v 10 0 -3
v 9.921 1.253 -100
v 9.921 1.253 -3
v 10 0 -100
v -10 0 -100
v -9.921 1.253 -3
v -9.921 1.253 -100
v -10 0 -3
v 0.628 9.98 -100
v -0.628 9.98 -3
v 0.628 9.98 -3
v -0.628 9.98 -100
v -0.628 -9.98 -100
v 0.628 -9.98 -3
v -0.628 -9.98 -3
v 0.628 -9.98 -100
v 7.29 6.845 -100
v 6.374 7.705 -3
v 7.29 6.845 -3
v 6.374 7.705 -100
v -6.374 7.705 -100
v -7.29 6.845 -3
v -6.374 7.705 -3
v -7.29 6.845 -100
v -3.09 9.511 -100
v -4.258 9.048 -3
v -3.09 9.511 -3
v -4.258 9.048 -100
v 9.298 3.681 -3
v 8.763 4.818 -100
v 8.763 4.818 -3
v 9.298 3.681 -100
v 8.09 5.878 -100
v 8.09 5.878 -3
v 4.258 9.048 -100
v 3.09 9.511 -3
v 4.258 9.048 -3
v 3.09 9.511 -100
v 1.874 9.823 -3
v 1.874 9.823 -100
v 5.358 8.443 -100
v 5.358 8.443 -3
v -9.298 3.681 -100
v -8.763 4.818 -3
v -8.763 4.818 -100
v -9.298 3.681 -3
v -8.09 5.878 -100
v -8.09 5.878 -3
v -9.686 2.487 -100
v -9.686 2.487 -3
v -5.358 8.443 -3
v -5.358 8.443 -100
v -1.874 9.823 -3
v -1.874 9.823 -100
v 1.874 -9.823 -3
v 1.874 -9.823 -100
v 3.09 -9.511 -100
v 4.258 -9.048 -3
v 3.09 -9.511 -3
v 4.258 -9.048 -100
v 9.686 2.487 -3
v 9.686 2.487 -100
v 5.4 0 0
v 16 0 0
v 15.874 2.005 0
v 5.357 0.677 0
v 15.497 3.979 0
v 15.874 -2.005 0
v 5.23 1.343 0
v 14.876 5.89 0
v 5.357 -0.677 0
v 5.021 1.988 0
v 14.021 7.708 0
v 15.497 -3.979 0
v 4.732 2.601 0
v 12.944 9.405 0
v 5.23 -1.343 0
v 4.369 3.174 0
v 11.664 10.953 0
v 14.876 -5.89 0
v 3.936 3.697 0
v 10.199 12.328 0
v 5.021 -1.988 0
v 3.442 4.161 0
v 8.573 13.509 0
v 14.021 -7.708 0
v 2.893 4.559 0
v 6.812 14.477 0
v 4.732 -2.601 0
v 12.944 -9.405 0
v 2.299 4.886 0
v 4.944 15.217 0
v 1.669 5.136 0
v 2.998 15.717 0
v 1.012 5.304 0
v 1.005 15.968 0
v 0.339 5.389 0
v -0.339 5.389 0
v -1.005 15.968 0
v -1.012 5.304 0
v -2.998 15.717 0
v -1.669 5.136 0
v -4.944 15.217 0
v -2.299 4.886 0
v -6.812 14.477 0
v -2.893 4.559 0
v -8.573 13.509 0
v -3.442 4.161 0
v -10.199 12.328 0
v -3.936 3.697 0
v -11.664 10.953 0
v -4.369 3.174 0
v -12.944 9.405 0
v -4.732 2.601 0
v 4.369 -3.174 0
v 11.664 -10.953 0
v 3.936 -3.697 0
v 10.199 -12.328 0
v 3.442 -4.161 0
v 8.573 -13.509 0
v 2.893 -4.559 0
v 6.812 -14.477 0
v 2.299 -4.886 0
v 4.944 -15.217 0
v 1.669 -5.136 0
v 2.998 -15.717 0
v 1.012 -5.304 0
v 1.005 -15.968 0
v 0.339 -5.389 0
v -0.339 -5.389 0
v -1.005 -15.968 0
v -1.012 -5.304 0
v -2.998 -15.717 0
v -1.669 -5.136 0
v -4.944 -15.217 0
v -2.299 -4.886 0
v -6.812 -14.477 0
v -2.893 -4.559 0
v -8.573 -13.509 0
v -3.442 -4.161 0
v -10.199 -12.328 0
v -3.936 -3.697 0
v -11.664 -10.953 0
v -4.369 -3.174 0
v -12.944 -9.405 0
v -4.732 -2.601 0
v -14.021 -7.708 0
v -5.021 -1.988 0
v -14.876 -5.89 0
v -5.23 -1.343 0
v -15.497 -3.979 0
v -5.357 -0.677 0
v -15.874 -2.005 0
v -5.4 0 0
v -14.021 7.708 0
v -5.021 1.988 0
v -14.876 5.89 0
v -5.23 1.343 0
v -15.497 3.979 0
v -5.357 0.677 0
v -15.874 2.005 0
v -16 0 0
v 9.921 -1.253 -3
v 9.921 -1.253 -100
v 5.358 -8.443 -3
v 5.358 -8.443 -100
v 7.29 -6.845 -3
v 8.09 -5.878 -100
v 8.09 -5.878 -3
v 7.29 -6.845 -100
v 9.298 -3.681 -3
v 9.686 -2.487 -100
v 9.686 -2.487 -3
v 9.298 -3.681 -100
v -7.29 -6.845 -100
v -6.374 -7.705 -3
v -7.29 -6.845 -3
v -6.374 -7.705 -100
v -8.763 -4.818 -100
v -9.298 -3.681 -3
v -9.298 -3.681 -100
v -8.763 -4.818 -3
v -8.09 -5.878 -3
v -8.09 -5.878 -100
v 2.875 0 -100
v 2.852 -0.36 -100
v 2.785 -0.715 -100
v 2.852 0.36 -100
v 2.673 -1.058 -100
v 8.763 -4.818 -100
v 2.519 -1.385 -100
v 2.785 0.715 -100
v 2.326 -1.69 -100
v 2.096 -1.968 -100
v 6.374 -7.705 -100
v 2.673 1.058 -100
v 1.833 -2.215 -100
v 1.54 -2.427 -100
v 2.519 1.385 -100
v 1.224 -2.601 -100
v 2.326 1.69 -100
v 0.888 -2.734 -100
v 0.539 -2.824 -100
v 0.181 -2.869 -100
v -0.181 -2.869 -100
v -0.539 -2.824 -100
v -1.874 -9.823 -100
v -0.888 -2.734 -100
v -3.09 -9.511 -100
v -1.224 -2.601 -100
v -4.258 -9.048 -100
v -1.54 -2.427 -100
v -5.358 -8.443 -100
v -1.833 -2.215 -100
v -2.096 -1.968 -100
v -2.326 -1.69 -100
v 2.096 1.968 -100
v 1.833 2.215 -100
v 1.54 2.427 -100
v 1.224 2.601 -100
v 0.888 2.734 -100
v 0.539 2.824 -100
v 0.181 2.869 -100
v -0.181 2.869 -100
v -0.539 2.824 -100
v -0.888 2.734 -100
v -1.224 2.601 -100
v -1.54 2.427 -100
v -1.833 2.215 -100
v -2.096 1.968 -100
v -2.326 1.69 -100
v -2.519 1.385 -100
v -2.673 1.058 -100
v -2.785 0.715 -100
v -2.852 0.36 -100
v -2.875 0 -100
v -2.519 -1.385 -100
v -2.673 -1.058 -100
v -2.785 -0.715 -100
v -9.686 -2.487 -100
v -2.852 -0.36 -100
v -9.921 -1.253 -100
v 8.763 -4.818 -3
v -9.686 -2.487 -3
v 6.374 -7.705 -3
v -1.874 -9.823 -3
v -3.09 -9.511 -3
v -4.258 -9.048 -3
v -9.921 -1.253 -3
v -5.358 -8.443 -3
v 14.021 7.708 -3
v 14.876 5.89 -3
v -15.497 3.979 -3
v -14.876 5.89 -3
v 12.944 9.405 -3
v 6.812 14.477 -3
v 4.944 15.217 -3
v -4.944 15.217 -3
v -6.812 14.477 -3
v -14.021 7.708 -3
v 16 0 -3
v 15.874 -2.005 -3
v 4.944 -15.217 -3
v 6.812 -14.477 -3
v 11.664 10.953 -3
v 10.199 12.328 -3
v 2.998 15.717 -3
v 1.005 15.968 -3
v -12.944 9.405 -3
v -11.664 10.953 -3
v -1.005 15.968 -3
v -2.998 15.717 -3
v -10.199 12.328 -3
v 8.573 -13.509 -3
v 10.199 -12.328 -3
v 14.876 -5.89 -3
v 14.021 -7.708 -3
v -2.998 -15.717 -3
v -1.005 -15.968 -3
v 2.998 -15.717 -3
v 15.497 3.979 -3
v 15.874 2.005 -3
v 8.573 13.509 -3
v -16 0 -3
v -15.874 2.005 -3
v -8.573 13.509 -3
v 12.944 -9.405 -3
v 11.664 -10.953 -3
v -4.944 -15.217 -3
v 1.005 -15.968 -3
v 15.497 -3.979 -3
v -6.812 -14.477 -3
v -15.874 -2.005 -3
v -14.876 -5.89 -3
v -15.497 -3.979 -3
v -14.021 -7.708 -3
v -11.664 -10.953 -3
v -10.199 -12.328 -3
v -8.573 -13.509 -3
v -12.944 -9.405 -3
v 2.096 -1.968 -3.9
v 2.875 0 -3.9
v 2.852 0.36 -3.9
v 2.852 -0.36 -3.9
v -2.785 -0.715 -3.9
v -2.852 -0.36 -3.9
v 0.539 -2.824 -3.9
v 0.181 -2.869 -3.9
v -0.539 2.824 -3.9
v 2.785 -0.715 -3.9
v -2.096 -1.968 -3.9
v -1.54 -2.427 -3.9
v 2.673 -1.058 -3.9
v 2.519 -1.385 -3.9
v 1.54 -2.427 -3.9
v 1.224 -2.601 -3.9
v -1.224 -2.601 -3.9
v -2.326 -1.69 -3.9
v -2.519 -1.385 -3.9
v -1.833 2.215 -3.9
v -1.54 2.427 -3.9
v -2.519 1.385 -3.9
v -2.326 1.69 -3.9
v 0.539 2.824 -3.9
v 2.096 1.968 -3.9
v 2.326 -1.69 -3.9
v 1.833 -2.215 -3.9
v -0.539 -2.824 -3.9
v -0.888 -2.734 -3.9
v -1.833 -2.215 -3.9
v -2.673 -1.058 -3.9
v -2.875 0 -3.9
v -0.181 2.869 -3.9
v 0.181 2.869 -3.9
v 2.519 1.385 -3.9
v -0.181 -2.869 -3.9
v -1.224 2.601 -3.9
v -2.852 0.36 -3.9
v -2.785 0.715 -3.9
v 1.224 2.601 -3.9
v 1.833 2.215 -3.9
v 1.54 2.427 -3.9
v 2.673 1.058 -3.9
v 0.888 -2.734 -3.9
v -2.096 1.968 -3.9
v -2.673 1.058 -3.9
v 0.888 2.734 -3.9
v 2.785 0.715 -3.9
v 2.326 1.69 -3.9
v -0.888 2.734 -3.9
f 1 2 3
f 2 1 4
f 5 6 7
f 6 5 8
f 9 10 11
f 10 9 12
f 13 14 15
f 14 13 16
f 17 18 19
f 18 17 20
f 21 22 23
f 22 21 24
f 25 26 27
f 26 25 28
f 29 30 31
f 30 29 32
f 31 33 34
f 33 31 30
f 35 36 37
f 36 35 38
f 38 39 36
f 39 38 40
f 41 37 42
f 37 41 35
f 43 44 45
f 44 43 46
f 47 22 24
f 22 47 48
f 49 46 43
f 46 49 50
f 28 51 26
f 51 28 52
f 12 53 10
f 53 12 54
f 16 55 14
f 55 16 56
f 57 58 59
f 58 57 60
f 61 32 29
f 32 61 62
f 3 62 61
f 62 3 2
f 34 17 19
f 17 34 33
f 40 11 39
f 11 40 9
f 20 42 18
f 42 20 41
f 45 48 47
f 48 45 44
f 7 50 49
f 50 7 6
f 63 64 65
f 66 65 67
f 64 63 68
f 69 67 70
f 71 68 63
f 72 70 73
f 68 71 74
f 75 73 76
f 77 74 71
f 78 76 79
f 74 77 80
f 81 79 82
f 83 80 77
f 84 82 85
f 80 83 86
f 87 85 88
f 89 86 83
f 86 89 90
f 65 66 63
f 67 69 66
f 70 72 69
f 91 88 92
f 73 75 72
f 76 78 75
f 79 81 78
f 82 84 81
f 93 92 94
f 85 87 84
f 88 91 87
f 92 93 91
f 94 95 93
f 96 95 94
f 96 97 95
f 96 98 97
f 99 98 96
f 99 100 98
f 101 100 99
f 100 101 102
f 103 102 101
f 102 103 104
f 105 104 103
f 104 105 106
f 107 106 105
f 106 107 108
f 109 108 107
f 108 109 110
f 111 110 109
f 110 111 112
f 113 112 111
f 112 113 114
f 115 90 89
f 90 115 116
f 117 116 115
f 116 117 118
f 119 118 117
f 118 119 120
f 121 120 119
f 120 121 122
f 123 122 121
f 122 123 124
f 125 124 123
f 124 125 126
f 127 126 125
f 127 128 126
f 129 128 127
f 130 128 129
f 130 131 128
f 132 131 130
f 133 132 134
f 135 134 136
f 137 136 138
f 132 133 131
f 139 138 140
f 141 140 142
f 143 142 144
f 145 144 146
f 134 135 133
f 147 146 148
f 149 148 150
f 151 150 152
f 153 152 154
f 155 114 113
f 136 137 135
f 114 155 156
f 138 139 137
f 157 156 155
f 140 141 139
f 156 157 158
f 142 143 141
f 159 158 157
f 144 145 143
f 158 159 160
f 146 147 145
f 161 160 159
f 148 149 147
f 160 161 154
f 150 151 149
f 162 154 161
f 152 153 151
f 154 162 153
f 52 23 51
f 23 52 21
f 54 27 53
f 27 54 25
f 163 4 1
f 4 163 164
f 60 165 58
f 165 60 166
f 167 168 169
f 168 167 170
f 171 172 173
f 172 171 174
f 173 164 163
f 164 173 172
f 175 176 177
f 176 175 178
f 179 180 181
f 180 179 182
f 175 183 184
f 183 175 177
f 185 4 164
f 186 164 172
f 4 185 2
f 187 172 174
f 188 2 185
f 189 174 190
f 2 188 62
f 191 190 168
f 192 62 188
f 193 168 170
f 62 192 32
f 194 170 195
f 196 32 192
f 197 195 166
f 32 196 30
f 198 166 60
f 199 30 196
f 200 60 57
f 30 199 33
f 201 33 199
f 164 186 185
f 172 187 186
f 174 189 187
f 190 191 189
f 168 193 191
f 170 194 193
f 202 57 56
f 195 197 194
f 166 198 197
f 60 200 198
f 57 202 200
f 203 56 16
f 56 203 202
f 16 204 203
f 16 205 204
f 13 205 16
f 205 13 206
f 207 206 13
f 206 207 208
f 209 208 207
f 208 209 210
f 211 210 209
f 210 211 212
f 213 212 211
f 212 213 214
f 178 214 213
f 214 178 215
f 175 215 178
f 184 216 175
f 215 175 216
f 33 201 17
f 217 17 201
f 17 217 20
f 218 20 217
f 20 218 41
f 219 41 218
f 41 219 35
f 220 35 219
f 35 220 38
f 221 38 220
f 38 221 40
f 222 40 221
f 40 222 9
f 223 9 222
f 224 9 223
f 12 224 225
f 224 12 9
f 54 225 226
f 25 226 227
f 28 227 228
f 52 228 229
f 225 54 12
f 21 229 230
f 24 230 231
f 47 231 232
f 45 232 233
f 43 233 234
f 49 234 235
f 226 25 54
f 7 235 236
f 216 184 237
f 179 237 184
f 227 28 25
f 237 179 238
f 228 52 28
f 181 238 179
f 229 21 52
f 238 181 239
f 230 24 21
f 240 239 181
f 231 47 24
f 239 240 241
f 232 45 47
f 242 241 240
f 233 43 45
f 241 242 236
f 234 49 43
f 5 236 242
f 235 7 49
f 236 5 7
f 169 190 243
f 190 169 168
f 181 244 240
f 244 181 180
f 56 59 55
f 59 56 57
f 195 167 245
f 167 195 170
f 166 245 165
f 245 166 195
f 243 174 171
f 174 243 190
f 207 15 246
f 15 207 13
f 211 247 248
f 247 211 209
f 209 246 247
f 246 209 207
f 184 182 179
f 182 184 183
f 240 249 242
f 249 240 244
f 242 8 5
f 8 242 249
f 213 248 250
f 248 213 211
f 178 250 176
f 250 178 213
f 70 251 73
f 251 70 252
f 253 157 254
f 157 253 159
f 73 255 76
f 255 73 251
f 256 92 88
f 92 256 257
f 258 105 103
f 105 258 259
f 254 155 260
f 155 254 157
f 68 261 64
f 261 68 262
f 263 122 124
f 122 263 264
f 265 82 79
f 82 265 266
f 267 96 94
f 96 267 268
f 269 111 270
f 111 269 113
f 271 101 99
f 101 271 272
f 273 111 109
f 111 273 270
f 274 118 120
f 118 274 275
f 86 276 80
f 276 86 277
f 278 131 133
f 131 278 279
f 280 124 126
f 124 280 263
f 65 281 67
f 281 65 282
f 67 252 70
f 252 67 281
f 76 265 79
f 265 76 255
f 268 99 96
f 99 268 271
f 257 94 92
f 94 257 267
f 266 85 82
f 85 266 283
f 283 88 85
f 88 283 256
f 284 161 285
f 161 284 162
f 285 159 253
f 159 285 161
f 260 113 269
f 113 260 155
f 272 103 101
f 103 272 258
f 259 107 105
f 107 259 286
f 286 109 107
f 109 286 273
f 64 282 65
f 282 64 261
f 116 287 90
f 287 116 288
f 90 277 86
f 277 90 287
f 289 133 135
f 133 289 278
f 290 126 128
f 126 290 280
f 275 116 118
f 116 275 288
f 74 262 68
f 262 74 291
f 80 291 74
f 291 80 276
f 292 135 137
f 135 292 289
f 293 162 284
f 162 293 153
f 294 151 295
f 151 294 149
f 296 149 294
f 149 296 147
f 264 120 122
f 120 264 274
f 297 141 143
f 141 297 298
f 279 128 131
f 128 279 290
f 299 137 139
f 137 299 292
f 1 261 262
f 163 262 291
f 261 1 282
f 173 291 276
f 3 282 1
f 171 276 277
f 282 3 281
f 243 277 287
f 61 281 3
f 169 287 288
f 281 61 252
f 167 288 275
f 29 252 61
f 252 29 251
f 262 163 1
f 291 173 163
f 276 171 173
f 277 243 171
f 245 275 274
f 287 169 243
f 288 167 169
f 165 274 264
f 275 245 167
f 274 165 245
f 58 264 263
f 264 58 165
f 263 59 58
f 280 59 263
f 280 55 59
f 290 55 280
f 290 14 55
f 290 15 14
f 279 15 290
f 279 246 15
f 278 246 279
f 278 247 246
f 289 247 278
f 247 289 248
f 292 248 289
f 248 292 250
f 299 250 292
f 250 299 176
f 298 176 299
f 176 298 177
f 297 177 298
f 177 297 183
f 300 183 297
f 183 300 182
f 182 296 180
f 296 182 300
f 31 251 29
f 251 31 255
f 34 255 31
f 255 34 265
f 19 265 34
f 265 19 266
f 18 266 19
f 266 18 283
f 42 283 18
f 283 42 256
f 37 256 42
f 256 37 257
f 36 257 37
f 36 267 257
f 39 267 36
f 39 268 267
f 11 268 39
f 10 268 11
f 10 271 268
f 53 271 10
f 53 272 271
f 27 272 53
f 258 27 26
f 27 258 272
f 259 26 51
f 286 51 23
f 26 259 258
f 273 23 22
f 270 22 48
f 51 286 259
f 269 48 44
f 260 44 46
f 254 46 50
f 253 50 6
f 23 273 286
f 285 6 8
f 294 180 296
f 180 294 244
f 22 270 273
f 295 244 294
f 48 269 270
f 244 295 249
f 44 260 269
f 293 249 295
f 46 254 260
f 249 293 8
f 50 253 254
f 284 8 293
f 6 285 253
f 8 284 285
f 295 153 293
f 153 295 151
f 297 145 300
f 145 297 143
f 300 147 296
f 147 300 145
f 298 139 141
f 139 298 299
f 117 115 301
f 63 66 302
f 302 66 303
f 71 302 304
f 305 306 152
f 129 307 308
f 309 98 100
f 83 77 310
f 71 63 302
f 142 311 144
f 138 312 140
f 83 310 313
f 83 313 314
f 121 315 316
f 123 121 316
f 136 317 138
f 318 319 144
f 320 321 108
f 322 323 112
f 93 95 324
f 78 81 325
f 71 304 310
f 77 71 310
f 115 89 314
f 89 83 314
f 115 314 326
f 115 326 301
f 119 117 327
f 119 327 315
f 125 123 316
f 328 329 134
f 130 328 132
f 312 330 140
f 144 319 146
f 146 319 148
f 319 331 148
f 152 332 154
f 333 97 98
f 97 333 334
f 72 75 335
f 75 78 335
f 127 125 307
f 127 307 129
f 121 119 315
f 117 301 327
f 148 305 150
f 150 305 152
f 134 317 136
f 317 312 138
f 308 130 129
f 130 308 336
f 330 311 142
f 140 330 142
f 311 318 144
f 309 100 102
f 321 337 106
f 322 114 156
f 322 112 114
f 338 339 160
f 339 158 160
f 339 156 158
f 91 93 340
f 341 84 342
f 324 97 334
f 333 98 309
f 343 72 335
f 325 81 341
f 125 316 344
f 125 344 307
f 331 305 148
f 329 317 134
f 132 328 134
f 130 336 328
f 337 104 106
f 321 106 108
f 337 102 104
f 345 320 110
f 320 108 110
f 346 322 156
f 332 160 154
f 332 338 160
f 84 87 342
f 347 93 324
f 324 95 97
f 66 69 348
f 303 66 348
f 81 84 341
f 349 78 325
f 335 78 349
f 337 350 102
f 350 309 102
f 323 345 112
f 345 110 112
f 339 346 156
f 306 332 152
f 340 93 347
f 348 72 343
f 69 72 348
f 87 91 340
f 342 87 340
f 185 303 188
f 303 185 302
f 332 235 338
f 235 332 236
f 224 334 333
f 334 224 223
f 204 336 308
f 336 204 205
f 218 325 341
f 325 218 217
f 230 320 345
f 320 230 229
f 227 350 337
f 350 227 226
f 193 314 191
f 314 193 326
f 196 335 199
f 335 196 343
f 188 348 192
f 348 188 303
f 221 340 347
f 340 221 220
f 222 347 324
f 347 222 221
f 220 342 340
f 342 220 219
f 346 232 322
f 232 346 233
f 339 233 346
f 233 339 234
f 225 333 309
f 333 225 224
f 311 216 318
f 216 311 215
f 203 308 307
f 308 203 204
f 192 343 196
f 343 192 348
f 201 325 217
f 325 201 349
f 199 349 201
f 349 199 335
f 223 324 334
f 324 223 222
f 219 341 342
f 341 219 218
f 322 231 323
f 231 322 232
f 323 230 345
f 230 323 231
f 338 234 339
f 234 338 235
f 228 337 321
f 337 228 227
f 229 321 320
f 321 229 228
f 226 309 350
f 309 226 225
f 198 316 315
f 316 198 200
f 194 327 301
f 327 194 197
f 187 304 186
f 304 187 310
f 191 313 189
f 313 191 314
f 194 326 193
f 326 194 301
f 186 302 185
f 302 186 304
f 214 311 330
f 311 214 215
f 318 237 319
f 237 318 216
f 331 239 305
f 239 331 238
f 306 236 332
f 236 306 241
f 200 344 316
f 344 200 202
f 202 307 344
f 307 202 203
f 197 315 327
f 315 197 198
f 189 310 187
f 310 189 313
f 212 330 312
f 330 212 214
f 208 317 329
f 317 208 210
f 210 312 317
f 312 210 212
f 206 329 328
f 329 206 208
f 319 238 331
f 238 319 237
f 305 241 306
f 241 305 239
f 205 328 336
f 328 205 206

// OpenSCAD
$fn = 50;


difference() {
	union() {
		translate(v = [0, 0, -100.0000000000]) {
			cylinder(h = 100, r = 10.0000000000);
		}
		translate(v = [0, 0, -3.0000000000]) {
			cylinder(h = 3, r = 16.0000000000);
		}
	}
	union() {
		translate(v = [0, 0, 0]) {
			rotate(a = [0, 0, 0]) {
				difference() {
					union() {
						#translate(v = [0, 0, -100.0000000000]) {
							cylinder(h = 100, r = 2.6000000000);
						}
						#translate(v = [0, 0, -3.9000000000]) {
							cylinder(h = 3.9000000000, r1 = 2.8750000000, r2 = 5.4000000000);
						}
						#translate(v = [0, 0, -100.0000000000]) {
							cylinder(h = 100, r = 2.8750000000);
						}
						#translate(v = [0, 0, -100.0000000000]) {
							cylinder(h = 100, r = 2.6000000000);
						}
					}
					union();
				}
			}
		}
	}
}
